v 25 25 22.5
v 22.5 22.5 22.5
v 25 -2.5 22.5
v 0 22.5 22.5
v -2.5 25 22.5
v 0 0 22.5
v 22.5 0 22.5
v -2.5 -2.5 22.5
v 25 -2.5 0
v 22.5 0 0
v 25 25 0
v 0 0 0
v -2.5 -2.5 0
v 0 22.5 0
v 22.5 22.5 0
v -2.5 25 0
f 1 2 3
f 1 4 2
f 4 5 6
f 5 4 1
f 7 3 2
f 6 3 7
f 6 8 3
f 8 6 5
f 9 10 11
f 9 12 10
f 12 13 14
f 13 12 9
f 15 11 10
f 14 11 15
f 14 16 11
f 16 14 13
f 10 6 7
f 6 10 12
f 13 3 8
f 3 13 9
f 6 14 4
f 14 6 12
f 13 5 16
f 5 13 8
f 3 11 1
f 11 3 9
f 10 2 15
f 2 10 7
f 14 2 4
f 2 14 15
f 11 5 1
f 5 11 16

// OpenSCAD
wall  = 2.5;
tower_width = 22;
margin = 0.5;
tower_width_with_margin = tower_width + margin;
diagonal = sqrt(2)*tower_width_with_margin;

module connector() {
    color([ 1, 0, 0 ])
    translate( [0, -wall, 0 ] )
        cube( [ tower_width_with_margin, wall, tower_width_with_margin] );
    
    color([ 0, 1, 0 ])
    translate( [-wall, 0, 0 ] )
        cube( [ wall, tower_width_with_margin, tower_width_with_margin] );

    color([ 0, 0, 1 ])
    translate( [tower_width_with_margin, 0, 0 ] )
        cube( [ wall, tower_width_with_margin, tower_width_with_margin] );
    
    color([ 1, 1, 0 ])
    translate( [0, tower_width_with_margin, 0 ] )
        cube( [ tower_width_with_margin+0.5*wall, wall, tower_width_with_margin] );

    translate( [-wall, -wall, 0 ] )
        cube([ wall, wall, tower_width_with_margin ] );

    translate( [-wall, tower_width_with_margin, 0 ] )
        cube([ wall, wall, tower_width_with_margin ] );

    translate( [tower_width_with_margin, -wall, 0 ] )
        cube([ wall, wall, tower_width_with_margin ] );

    translate( [tower_width_with_margin, tower_width_with_margin, 0 ] )
        cube([ wall, wall, tower_width_with_margin ] );

}

connector();
